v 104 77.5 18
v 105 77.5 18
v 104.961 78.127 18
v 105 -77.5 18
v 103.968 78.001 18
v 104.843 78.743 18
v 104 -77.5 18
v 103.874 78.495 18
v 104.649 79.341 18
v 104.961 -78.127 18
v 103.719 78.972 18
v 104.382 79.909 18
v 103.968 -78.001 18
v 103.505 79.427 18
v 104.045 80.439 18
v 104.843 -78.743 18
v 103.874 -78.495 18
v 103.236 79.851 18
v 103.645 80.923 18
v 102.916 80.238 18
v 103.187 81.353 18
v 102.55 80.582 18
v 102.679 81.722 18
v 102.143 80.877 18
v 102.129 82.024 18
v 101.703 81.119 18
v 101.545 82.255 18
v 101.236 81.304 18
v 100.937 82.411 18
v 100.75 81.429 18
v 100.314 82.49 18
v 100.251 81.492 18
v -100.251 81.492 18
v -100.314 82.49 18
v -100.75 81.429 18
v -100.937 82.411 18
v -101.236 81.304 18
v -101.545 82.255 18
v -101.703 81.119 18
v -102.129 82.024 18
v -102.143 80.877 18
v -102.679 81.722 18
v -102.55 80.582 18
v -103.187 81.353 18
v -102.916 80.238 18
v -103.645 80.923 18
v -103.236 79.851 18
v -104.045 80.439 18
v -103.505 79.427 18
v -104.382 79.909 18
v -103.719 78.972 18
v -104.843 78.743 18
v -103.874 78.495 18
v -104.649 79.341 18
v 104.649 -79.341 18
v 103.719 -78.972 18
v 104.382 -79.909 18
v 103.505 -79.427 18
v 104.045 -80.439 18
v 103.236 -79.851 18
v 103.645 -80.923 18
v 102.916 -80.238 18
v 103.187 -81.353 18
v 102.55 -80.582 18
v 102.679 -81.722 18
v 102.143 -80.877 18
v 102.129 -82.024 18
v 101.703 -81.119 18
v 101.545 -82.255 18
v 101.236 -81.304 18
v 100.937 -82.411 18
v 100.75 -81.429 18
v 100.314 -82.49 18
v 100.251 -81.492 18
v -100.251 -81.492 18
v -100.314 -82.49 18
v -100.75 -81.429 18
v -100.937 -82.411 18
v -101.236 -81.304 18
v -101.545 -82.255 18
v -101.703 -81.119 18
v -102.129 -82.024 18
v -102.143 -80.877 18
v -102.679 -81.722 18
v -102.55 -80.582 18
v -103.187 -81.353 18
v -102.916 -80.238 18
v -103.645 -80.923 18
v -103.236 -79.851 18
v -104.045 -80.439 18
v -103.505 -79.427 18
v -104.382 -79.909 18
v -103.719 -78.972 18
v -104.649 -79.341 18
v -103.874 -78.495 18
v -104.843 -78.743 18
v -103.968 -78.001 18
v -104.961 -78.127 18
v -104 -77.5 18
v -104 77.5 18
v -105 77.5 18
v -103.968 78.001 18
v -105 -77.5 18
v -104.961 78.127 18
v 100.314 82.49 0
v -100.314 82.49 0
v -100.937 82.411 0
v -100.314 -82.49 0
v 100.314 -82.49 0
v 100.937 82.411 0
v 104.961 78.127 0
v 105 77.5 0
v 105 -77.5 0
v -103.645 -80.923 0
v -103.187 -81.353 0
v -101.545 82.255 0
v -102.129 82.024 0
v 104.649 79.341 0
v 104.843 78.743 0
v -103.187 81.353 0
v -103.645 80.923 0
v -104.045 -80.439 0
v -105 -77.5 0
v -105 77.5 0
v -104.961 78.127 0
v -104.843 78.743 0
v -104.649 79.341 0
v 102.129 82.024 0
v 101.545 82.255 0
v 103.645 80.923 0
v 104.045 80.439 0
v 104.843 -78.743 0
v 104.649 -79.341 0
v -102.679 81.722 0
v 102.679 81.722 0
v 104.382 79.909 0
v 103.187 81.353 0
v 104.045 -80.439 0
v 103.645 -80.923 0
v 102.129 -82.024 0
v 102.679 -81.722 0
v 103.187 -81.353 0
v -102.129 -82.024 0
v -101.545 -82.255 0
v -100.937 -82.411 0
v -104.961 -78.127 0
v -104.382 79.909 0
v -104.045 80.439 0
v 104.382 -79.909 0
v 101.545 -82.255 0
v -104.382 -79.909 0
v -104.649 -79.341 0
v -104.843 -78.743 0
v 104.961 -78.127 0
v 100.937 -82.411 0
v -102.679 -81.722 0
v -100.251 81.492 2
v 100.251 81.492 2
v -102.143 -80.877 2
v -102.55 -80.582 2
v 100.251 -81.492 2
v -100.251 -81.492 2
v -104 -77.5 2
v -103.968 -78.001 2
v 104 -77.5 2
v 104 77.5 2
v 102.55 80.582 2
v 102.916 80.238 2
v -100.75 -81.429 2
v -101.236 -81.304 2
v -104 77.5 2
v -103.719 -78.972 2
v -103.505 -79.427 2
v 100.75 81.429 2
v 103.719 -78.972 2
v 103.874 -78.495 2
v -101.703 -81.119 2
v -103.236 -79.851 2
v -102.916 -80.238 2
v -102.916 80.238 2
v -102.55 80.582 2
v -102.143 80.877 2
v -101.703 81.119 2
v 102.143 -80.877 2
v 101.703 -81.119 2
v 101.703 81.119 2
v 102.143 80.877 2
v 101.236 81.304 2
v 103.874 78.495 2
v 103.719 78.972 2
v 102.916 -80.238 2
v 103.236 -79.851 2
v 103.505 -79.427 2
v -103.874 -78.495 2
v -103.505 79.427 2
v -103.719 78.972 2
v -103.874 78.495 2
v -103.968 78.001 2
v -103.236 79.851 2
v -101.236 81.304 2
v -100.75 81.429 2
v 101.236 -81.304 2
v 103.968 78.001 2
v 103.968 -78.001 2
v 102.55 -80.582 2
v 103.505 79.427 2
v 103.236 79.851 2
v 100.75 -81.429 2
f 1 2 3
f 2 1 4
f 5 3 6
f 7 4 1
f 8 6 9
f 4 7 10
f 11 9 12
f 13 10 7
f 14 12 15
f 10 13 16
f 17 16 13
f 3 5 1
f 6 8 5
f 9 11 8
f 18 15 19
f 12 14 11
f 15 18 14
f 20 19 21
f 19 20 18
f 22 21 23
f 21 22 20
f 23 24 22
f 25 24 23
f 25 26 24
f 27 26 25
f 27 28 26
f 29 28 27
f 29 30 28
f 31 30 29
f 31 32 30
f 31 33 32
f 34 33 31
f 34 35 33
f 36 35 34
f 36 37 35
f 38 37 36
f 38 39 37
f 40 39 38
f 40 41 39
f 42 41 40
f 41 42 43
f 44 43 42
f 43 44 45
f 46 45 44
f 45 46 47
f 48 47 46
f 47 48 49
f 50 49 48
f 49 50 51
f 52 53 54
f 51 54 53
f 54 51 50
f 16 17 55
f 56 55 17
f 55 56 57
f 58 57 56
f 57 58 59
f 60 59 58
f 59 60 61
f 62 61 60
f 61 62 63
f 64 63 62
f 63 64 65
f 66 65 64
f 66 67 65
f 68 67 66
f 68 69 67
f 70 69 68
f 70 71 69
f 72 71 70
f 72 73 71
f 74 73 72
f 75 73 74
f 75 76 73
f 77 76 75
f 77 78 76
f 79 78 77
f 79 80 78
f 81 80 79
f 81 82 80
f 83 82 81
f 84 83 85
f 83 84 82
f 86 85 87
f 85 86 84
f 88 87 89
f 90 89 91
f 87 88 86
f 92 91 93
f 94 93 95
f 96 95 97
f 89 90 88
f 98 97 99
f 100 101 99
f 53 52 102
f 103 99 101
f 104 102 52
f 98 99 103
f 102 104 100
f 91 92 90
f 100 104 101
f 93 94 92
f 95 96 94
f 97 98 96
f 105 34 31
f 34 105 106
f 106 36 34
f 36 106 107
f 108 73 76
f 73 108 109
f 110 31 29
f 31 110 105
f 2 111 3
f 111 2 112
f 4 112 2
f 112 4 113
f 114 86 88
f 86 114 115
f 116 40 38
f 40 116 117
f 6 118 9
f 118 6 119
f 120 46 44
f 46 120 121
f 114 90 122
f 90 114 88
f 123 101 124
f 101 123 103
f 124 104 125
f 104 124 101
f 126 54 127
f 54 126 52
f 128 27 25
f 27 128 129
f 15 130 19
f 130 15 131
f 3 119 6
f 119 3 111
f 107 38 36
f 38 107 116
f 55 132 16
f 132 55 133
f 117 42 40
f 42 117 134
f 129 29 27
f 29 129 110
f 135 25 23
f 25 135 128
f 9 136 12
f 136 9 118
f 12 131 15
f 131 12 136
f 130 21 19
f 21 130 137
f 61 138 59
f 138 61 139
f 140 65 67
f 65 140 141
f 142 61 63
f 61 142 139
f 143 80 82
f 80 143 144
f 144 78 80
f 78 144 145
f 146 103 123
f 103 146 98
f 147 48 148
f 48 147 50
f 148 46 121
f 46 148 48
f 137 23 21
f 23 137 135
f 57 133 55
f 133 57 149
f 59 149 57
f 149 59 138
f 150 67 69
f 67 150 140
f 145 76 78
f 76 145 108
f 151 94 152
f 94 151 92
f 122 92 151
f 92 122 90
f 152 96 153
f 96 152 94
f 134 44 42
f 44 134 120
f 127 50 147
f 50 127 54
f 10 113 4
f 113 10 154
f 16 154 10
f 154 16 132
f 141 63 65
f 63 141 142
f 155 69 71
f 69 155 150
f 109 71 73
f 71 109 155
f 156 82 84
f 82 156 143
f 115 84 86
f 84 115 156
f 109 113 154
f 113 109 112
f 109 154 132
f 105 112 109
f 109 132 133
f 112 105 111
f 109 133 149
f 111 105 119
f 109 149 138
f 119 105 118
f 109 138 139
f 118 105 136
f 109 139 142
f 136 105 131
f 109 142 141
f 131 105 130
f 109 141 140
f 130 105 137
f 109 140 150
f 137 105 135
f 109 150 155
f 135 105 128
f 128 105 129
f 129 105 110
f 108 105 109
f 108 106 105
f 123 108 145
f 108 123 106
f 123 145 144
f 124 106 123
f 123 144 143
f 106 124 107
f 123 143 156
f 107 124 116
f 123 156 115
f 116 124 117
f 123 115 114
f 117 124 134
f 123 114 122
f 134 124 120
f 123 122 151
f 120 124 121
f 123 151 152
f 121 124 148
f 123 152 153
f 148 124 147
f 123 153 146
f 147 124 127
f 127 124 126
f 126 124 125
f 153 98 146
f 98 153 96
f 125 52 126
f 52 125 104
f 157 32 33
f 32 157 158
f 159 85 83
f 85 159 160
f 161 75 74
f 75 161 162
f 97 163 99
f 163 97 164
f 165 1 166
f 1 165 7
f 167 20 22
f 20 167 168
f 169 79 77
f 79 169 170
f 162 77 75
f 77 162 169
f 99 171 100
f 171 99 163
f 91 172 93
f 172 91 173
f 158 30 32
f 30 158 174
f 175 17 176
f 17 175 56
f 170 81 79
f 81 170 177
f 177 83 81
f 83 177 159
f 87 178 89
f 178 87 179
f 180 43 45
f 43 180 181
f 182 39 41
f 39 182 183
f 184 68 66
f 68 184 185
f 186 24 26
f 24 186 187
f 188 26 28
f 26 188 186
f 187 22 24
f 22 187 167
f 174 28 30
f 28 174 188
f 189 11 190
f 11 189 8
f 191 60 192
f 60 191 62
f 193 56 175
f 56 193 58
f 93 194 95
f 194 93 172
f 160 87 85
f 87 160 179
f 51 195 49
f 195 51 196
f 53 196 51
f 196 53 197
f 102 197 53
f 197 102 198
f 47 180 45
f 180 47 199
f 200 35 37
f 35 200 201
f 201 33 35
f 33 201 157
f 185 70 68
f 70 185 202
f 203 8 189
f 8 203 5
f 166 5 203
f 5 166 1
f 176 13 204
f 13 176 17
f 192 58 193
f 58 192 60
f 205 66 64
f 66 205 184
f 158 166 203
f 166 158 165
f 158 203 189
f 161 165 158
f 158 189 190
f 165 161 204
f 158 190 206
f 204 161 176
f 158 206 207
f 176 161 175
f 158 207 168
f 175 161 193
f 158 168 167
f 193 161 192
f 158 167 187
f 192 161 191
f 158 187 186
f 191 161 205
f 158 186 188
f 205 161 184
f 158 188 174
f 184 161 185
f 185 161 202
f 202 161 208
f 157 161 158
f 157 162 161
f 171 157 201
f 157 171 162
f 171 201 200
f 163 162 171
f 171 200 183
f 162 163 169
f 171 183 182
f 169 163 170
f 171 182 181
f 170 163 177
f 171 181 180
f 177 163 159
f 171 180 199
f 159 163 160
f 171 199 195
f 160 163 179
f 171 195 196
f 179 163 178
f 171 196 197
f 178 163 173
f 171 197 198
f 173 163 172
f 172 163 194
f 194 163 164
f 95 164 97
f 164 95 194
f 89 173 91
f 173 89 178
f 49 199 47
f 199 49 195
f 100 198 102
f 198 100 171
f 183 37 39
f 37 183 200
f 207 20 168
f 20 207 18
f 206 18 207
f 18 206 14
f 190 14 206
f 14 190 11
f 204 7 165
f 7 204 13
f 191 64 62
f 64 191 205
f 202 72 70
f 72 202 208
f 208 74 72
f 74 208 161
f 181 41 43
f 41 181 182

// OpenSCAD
$fn = 50;


difference() {
	union() {
		hull() {
			translate(v = [-100.0000000000, 77.5000000000, 0]) {
				cylinder(h = 18, r = 5);
			}
			translate(v = [100.0000000000, 77.5000000000, 0]) {
				cylinder(h = 18, r = 5);
			}
			translate(v = [-100.0000000000, -77.5000000000, 0]) {
				cylinder(h = 18, r = 5);
			}
			translate(v = [100.0000000000, -77.5000000000, 0]) {
				cylinder(h = 18, r = 5);
			}
		}
	}
	union() {
		translate(v = [0, 0, 2]) {
			hull() {
				translate(v = [-100.0000000000, 77.5000000000, 0]) {
					cylinder(h = 16, r = 4);
				}
				translate(v = [100.0000000000, 77.5000000000, 0]) {
					cylinder(h = 16, r = 4);
				}
				translate(v = [-100.0000000000, -77.5000000000, 0]) {
					cylinder(h = 16, r = 4);
				}
				translate(v = [100.0000000000, -77.5000000000, 0]) {
					cylinder(h = 16, r = 4);
				}
			}
		}
	}
}
